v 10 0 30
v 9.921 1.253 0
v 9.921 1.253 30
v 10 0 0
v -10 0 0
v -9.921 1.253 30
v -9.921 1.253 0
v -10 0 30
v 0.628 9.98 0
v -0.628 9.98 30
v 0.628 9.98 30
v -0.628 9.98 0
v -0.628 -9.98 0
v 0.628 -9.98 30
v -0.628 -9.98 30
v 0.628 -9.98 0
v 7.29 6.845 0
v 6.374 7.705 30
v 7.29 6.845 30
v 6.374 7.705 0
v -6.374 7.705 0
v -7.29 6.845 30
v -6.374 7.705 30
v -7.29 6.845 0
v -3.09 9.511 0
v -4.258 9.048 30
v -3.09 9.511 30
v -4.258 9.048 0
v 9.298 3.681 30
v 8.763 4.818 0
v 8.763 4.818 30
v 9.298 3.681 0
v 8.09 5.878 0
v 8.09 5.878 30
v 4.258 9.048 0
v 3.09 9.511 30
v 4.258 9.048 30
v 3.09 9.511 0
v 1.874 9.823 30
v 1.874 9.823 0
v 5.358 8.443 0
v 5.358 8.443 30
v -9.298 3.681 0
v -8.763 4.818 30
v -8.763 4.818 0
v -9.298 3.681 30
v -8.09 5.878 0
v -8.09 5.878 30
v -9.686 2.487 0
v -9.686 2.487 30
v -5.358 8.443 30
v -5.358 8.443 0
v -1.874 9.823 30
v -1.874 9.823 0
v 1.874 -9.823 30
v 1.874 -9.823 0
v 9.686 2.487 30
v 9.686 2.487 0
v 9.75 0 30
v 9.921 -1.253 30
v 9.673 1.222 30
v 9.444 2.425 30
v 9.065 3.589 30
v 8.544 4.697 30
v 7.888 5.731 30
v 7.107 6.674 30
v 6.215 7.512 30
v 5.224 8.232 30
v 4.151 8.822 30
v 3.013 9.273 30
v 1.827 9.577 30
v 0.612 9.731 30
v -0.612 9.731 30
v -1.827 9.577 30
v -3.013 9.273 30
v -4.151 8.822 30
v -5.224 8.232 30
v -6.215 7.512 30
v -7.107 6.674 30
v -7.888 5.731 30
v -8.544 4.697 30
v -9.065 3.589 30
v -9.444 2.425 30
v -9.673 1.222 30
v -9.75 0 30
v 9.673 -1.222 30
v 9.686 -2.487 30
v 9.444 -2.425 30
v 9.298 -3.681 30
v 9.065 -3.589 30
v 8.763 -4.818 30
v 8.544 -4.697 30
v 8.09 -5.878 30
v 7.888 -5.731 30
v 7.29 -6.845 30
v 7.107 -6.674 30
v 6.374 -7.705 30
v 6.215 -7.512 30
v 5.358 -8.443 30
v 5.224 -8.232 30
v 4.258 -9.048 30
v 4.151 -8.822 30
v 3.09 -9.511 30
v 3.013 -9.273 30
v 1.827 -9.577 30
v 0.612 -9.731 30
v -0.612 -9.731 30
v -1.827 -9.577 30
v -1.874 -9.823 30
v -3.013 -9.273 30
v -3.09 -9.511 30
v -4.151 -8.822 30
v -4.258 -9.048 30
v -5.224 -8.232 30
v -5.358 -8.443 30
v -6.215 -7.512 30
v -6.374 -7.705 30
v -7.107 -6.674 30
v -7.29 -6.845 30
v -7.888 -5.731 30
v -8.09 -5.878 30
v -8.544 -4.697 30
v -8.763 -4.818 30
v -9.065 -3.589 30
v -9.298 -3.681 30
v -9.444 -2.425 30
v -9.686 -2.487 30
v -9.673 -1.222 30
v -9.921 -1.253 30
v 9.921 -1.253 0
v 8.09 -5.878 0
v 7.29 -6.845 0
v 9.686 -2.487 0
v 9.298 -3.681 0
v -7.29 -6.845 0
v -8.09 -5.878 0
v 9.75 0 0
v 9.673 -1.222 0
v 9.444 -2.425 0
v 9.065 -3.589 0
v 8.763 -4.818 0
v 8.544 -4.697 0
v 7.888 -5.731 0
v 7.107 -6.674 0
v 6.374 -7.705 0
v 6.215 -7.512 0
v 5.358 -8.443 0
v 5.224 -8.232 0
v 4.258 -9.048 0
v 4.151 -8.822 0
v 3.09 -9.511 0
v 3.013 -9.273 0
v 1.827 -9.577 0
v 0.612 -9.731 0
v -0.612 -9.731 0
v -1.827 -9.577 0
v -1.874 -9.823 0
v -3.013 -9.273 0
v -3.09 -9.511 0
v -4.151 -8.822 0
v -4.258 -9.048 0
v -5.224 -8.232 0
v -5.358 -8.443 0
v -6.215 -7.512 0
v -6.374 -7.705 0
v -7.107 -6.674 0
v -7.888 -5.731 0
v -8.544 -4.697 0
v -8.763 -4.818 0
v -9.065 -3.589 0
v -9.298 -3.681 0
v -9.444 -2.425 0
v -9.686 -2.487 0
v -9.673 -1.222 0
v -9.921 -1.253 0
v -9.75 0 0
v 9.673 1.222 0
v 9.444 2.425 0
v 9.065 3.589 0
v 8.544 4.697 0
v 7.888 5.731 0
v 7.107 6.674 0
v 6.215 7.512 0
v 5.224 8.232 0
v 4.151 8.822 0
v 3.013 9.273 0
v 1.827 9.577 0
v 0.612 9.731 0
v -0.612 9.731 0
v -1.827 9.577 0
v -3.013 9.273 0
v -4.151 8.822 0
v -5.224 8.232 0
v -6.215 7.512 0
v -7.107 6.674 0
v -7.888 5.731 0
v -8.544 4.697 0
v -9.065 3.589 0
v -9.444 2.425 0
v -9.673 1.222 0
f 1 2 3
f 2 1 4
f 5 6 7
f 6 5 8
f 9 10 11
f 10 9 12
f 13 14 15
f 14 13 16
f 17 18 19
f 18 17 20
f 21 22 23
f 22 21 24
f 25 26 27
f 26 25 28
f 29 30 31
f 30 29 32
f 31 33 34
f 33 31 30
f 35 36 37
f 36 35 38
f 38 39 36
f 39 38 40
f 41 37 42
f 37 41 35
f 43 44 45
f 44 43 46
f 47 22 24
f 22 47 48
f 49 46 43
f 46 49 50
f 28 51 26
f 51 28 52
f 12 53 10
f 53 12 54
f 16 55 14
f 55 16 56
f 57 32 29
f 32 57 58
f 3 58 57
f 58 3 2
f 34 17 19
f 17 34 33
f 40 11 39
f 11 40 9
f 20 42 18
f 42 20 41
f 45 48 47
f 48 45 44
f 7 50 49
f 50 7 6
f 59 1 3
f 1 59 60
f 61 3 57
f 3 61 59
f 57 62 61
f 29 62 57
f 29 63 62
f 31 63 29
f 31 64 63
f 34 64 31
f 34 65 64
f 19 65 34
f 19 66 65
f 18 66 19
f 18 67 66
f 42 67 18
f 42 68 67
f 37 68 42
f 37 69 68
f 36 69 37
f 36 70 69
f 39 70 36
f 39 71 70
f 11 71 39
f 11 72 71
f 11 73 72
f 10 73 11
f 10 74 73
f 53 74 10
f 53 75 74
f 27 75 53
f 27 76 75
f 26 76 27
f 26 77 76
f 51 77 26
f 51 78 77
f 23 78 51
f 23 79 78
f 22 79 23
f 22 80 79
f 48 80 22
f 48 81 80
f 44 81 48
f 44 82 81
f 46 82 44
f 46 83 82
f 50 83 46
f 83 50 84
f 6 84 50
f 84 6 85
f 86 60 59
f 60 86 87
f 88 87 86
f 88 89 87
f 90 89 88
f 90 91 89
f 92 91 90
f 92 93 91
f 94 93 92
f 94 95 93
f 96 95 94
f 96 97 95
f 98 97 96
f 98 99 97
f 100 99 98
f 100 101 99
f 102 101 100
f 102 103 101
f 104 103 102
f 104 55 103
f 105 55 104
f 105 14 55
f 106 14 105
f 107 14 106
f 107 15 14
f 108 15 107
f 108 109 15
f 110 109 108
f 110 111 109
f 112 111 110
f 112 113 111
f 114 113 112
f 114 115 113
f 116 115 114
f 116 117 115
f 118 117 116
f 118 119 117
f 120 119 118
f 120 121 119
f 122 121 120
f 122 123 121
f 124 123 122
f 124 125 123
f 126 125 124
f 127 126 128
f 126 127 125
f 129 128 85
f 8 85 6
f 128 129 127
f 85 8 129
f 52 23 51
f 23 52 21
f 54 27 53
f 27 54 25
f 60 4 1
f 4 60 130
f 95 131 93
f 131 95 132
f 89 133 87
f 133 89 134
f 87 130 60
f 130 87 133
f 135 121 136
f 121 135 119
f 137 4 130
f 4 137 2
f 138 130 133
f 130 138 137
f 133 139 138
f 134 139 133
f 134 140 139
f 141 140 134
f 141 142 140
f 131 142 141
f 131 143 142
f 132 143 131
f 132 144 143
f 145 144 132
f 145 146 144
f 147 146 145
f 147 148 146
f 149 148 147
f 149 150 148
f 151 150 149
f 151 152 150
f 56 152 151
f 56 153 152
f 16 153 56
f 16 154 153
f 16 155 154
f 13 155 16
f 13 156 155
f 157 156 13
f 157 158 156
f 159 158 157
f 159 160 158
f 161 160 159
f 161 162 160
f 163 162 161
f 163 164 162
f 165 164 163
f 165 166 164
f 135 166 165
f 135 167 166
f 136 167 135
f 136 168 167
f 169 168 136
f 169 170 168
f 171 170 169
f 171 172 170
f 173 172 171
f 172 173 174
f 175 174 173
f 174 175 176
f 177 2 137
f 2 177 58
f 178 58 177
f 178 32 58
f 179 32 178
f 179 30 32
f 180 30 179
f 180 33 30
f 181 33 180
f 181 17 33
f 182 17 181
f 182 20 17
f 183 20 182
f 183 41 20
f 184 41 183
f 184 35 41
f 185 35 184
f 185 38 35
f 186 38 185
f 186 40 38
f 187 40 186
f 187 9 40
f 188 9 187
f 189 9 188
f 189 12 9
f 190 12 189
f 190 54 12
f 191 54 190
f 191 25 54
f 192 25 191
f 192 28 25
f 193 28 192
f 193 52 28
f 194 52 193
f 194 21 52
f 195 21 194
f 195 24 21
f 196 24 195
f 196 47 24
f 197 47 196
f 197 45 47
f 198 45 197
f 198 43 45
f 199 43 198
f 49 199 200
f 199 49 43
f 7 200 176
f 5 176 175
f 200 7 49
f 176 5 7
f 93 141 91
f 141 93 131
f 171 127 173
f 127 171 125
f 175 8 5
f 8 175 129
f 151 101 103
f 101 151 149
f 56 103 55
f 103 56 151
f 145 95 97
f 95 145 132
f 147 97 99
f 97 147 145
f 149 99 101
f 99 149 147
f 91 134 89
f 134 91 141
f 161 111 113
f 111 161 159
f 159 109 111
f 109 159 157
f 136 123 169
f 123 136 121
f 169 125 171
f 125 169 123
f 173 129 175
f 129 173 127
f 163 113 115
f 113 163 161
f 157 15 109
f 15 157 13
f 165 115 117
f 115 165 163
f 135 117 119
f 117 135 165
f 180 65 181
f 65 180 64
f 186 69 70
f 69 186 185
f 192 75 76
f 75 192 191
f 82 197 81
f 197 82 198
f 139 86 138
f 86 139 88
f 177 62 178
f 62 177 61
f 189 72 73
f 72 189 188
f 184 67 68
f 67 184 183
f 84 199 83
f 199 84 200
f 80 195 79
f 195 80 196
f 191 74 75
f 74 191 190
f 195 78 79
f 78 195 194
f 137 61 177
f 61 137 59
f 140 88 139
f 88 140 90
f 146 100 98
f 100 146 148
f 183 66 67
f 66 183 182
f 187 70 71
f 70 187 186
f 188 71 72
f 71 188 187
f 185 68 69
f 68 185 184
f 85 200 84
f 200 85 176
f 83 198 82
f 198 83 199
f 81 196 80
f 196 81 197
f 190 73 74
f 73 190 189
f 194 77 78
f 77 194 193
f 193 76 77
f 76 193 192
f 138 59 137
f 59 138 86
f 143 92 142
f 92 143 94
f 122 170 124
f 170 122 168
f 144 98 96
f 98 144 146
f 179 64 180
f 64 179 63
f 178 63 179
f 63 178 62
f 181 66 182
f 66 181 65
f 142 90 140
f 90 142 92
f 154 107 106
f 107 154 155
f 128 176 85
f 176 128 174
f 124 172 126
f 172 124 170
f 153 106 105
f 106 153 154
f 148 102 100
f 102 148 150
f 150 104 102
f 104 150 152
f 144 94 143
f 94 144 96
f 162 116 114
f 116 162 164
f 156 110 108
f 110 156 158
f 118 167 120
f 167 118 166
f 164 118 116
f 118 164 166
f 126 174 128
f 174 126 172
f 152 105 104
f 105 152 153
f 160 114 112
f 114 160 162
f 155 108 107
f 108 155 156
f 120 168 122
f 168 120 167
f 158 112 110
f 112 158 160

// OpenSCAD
difference() {
    cylinder(d=20, h=30, $fn=50);
    translate([0,0,-1]) cylinder(d=20-.5, h=30+2, $fn=50);
}
